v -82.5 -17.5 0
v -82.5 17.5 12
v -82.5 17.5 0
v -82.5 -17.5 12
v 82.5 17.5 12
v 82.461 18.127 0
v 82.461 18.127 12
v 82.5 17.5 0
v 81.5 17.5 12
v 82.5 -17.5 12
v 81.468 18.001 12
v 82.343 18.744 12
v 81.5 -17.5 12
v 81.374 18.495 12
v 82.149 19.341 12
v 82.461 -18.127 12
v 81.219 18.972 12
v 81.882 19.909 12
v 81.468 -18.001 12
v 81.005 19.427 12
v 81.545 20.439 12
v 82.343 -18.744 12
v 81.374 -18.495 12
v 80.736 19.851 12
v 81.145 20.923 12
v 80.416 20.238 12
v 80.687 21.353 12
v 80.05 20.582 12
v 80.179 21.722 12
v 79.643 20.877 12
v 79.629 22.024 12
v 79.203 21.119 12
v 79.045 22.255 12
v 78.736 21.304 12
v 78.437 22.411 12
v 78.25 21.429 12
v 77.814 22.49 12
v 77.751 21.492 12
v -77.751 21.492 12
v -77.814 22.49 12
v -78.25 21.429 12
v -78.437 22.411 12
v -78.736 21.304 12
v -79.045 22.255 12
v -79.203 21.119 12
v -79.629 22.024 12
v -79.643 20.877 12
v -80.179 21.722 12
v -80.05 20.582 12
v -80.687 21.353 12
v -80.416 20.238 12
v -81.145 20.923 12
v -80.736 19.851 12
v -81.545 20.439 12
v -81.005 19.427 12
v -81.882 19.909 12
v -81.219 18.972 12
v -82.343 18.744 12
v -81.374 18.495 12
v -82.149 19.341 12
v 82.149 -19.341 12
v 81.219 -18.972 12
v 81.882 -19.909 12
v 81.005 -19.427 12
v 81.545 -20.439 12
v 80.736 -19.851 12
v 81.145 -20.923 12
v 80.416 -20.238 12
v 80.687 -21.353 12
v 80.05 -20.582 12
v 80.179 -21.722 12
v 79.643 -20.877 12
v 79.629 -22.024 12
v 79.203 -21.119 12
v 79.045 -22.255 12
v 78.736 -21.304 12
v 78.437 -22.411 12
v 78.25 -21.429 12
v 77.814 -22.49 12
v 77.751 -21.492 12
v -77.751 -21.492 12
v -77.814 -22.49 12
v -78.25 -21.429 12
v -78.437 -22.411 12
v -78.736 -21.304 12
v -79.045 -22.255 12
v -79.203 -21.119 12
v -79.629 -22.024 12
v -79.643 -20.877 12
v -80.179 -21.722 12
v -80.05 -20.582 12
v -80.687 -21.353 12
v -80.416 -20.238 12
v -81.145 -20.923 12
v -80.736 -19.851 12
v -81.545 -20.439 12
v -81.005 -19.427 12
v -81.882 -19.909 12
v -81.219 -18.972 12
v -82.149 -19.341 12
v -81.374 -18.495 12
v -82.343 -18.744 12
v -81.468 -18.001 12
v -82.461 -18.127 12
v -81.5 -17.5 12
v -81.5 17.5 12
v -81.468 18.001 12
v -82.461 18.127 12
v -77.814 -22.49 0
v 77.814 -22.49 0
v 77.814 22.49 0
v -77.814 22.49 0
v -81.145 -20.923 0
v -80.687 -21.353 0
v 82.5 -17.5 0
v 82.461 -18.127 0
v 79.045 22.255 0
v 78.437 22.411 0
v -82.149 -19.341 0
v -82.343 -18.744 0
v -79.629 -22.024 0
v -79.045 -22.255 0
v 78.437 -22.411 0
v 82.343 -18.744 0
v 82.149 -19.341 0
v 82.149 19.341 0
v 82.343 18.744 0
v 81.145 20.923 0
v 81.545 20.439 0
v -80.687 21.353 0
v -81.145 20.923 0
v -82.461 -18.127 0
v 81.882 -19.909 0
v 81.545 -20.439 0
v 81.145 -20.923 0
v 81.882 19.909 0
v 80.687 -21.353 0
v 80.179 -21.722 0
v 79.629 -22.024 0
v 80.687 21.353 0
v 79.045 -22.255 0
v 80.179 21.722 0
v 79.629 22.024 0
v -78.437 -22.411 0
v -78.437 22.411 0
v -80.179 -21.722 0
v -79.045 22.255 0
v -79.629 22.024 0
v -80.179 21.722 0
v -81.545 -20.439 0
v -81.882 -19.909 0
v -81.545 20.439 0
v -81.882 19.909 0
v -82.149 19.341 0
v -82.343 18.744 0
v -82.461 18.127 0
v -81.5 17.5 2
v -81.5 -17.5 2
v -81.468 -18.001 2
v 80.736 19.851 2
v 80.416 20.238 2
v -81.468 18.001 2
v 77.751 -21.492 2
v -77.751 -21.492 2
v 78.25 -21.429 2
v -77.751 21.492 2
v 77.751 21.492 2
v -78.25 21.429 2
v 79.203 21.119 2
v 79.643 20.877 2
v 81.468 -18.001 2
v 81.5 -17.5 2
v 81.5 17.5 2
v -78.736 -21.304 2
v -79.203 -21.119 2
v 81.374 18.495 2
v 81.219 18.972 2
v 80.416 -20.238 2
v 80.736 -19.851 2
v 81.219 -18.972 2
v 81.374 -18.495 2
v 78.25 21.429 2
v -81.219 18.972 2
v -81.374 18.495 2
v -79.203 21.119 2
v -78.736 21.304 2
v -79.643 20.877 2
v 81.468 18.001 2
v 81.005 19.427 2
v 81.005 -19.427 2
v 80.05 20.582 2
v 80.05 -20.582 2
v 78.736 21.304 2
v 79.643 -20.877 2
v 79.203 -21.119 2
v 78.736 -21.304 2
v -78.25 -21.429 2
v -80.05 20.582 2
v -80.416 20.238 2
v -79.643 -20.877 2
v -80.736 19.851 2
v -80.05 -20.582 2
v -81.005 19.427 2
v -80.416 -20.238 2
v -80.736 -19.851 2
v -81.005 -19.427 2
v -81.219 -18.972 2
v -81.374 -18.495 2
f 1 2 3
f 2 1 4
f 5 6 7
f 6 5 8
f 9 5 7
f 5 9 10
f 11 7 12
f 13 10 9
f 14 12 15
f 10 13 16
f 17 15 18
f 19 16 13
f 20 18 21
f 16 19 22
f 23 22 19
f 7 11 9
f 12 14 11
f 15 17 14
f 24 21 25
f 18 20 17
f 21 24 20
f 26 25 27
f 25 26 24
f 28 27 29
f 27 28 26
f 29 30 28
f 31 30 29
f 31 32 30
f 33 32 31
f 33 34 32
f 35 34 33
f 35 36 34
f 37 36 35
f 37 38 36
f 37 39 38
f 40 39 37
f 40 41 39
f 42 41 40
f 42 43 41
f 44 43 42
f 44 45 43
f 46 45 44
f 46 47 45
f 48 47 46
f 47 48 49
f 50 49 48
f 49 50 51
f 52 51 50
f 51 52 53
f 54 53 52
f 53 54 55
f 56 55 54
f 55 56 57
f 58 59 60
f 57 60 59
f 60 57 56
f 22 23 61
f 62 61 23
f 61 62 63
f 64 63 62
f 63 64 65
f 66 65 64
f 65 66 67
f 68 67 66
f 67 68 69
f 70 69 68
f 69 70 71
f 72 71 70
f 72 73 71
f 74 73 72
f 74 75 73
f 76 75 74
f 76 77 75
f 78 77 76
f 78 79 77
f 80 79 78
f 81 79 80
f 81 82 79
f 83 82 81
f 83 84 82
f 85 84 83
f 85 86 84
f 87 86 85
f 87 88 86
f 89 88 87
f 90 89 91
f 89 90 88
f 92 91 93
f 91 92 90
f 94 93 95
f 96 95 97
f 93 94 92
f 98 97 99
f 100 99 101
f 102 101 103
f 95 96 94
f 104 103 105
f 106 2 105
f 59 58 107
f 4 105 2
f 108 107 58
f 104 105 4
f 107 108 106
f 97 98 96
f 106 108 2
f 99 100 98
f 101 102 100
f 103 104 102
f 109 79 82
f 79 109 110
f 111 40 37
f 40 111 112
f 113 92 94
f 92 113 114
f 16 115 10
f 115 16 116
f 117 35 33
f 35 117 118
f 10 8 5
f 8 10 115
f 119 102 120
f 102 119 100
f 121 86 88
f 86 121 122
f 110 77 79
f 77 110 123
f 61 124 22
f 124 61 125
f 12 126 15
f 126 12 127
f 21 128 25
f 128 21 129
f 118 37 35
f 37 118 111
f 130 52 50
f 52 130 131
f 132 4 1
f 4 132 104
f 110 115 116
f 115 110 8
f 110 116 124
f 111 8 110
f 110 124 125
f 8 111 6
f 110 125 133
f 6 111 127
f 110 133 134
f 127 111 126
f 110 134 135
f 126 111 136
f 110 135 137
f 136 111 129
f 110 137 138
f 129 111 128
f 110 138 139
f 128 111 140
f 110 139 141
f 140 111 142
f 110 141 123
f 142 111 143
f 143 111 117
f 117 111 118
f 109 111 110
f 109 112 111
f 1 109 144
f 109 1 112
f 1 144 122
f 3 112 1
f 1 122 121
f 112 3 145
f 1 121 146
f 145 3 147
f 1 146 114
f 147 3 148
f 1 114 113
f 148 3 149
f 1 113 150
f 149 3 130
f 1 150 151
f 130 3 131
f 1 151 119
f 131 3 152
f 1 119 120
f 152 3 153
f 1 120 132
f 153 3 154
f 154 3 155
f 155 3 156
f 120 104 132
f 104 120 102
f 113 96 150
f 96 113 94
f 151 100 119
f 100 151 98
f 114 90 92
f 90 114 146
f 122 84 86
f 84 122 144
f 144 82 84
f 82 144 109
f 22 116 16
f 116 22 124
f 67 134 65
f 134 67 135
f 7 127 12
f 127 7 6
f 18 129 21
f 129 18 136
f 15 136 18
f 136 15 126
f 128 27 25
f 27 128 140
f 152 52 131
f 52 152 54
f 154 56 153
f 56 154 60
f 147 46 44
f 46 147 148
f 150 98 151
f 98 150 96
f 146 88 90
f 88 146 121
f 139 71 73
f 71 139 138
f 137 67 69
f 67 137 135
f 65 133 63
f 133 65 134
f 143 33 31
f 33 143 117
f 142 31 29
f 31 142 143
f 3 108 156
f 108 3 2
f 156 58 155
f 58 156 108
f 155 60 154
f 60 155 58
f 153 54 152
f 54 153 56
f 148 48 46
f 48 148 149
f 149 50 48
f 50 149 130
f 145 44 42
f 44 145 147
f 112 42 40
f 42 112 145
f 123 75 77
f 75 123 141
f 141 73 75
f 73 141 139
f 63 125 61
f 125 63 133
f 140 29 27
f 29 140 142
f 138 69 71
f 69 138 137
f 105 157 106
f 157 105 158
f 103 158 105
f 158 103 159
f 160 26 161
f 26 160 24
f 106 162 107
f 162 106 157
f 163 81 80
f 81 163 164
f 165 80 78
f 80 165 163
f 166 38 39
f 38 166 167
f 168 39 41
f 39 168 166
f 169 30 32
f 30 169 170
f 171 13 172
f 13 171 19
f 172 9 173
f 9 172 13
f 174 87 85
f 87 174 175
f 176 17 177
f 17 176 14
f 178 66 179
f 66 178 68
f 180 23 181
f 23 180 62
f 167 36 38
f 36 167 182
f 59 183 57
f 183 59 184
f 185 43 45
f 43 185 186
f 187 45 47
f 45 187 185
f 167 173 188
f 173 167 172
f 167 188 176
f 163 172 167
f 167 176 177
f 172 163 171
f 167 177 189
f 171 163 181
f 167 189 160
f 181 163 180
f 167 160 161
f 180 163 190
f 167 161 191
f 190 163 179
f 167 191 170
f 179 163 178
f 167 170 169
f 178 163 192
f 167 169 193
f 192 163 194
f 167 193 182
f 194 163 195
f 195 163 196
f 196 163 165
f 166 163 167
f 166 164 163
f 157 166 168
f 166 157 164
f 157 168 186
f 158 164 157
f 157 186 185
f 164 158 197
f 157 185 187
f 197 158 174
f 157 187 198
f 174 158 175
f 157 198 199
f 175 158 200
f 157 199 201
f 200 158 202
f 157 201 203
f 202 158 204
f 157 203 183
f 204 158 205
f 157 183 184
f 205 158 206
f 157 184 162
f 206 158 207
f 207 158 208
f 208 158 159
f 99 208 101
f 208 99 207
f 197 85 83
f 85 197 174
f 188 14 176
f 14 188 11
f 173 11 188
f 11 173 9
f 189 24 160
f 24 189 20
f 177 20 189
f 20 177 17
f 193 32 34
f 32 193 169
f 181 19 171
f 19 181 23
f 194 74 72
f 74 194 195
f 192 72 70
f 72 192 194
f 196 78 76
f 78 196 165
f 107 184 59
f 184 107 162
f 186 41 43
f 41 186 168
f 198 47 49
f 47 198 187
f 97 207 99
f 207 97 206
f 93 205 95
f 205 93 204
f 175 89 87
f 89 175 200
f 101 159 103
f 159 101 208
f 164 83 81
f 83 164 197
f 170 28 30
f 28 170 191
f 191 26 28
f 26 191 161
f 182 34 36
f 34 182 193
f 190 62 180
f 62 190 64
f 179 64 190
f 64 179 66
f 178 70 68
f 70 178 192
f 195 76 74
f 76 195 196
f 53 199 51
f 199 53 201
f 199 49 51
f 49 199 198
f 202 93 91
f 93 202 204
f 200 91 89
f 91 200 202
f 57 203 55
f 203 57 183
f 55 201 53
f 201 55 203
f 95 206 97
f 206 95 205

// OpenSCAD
$fn = 50;


difference() {
	union() {
		hull() {
			translate(v = [-77.5000000000, 17.5000000000, 0]) {
				cylinder(h = 12, r = 5);
			}
			translate(v = [77.5000000000, 17.5000000000, 0]) {
				cylinder(h = 12, r = 5);
			}
			translate(v = [-77.5000000000, -17.5000000000, 0]) {
				cylinder(h = 12, r = 5);
			}
			translate(v = [77.5000000000, -17.5000000000, 0]) {
				cylinder(h = 12, r = 5);
			}
		}
	}
	union() {
		translate(v = [0, 0, 2]) {
			hull() {
				translate(v = [-77.5000000000, 17.5000000000, 0]) {
					cylinder(h = 10, r = 4);
				}
				translate(v = [77.5000000000, 17.5000000000, 0]) {
					cylinder(h = 10, r = 4);
				}
				translate(v = [-77.5000000000, -17.5000000000, 0]) {
					cylinder(h = 10, r = 4);
				}
				translate(v = [77.5000000000, -17.5000000000, 0]) {
					cylinder(h = 10, r = 4);
				}
			}
		}
	}
}
